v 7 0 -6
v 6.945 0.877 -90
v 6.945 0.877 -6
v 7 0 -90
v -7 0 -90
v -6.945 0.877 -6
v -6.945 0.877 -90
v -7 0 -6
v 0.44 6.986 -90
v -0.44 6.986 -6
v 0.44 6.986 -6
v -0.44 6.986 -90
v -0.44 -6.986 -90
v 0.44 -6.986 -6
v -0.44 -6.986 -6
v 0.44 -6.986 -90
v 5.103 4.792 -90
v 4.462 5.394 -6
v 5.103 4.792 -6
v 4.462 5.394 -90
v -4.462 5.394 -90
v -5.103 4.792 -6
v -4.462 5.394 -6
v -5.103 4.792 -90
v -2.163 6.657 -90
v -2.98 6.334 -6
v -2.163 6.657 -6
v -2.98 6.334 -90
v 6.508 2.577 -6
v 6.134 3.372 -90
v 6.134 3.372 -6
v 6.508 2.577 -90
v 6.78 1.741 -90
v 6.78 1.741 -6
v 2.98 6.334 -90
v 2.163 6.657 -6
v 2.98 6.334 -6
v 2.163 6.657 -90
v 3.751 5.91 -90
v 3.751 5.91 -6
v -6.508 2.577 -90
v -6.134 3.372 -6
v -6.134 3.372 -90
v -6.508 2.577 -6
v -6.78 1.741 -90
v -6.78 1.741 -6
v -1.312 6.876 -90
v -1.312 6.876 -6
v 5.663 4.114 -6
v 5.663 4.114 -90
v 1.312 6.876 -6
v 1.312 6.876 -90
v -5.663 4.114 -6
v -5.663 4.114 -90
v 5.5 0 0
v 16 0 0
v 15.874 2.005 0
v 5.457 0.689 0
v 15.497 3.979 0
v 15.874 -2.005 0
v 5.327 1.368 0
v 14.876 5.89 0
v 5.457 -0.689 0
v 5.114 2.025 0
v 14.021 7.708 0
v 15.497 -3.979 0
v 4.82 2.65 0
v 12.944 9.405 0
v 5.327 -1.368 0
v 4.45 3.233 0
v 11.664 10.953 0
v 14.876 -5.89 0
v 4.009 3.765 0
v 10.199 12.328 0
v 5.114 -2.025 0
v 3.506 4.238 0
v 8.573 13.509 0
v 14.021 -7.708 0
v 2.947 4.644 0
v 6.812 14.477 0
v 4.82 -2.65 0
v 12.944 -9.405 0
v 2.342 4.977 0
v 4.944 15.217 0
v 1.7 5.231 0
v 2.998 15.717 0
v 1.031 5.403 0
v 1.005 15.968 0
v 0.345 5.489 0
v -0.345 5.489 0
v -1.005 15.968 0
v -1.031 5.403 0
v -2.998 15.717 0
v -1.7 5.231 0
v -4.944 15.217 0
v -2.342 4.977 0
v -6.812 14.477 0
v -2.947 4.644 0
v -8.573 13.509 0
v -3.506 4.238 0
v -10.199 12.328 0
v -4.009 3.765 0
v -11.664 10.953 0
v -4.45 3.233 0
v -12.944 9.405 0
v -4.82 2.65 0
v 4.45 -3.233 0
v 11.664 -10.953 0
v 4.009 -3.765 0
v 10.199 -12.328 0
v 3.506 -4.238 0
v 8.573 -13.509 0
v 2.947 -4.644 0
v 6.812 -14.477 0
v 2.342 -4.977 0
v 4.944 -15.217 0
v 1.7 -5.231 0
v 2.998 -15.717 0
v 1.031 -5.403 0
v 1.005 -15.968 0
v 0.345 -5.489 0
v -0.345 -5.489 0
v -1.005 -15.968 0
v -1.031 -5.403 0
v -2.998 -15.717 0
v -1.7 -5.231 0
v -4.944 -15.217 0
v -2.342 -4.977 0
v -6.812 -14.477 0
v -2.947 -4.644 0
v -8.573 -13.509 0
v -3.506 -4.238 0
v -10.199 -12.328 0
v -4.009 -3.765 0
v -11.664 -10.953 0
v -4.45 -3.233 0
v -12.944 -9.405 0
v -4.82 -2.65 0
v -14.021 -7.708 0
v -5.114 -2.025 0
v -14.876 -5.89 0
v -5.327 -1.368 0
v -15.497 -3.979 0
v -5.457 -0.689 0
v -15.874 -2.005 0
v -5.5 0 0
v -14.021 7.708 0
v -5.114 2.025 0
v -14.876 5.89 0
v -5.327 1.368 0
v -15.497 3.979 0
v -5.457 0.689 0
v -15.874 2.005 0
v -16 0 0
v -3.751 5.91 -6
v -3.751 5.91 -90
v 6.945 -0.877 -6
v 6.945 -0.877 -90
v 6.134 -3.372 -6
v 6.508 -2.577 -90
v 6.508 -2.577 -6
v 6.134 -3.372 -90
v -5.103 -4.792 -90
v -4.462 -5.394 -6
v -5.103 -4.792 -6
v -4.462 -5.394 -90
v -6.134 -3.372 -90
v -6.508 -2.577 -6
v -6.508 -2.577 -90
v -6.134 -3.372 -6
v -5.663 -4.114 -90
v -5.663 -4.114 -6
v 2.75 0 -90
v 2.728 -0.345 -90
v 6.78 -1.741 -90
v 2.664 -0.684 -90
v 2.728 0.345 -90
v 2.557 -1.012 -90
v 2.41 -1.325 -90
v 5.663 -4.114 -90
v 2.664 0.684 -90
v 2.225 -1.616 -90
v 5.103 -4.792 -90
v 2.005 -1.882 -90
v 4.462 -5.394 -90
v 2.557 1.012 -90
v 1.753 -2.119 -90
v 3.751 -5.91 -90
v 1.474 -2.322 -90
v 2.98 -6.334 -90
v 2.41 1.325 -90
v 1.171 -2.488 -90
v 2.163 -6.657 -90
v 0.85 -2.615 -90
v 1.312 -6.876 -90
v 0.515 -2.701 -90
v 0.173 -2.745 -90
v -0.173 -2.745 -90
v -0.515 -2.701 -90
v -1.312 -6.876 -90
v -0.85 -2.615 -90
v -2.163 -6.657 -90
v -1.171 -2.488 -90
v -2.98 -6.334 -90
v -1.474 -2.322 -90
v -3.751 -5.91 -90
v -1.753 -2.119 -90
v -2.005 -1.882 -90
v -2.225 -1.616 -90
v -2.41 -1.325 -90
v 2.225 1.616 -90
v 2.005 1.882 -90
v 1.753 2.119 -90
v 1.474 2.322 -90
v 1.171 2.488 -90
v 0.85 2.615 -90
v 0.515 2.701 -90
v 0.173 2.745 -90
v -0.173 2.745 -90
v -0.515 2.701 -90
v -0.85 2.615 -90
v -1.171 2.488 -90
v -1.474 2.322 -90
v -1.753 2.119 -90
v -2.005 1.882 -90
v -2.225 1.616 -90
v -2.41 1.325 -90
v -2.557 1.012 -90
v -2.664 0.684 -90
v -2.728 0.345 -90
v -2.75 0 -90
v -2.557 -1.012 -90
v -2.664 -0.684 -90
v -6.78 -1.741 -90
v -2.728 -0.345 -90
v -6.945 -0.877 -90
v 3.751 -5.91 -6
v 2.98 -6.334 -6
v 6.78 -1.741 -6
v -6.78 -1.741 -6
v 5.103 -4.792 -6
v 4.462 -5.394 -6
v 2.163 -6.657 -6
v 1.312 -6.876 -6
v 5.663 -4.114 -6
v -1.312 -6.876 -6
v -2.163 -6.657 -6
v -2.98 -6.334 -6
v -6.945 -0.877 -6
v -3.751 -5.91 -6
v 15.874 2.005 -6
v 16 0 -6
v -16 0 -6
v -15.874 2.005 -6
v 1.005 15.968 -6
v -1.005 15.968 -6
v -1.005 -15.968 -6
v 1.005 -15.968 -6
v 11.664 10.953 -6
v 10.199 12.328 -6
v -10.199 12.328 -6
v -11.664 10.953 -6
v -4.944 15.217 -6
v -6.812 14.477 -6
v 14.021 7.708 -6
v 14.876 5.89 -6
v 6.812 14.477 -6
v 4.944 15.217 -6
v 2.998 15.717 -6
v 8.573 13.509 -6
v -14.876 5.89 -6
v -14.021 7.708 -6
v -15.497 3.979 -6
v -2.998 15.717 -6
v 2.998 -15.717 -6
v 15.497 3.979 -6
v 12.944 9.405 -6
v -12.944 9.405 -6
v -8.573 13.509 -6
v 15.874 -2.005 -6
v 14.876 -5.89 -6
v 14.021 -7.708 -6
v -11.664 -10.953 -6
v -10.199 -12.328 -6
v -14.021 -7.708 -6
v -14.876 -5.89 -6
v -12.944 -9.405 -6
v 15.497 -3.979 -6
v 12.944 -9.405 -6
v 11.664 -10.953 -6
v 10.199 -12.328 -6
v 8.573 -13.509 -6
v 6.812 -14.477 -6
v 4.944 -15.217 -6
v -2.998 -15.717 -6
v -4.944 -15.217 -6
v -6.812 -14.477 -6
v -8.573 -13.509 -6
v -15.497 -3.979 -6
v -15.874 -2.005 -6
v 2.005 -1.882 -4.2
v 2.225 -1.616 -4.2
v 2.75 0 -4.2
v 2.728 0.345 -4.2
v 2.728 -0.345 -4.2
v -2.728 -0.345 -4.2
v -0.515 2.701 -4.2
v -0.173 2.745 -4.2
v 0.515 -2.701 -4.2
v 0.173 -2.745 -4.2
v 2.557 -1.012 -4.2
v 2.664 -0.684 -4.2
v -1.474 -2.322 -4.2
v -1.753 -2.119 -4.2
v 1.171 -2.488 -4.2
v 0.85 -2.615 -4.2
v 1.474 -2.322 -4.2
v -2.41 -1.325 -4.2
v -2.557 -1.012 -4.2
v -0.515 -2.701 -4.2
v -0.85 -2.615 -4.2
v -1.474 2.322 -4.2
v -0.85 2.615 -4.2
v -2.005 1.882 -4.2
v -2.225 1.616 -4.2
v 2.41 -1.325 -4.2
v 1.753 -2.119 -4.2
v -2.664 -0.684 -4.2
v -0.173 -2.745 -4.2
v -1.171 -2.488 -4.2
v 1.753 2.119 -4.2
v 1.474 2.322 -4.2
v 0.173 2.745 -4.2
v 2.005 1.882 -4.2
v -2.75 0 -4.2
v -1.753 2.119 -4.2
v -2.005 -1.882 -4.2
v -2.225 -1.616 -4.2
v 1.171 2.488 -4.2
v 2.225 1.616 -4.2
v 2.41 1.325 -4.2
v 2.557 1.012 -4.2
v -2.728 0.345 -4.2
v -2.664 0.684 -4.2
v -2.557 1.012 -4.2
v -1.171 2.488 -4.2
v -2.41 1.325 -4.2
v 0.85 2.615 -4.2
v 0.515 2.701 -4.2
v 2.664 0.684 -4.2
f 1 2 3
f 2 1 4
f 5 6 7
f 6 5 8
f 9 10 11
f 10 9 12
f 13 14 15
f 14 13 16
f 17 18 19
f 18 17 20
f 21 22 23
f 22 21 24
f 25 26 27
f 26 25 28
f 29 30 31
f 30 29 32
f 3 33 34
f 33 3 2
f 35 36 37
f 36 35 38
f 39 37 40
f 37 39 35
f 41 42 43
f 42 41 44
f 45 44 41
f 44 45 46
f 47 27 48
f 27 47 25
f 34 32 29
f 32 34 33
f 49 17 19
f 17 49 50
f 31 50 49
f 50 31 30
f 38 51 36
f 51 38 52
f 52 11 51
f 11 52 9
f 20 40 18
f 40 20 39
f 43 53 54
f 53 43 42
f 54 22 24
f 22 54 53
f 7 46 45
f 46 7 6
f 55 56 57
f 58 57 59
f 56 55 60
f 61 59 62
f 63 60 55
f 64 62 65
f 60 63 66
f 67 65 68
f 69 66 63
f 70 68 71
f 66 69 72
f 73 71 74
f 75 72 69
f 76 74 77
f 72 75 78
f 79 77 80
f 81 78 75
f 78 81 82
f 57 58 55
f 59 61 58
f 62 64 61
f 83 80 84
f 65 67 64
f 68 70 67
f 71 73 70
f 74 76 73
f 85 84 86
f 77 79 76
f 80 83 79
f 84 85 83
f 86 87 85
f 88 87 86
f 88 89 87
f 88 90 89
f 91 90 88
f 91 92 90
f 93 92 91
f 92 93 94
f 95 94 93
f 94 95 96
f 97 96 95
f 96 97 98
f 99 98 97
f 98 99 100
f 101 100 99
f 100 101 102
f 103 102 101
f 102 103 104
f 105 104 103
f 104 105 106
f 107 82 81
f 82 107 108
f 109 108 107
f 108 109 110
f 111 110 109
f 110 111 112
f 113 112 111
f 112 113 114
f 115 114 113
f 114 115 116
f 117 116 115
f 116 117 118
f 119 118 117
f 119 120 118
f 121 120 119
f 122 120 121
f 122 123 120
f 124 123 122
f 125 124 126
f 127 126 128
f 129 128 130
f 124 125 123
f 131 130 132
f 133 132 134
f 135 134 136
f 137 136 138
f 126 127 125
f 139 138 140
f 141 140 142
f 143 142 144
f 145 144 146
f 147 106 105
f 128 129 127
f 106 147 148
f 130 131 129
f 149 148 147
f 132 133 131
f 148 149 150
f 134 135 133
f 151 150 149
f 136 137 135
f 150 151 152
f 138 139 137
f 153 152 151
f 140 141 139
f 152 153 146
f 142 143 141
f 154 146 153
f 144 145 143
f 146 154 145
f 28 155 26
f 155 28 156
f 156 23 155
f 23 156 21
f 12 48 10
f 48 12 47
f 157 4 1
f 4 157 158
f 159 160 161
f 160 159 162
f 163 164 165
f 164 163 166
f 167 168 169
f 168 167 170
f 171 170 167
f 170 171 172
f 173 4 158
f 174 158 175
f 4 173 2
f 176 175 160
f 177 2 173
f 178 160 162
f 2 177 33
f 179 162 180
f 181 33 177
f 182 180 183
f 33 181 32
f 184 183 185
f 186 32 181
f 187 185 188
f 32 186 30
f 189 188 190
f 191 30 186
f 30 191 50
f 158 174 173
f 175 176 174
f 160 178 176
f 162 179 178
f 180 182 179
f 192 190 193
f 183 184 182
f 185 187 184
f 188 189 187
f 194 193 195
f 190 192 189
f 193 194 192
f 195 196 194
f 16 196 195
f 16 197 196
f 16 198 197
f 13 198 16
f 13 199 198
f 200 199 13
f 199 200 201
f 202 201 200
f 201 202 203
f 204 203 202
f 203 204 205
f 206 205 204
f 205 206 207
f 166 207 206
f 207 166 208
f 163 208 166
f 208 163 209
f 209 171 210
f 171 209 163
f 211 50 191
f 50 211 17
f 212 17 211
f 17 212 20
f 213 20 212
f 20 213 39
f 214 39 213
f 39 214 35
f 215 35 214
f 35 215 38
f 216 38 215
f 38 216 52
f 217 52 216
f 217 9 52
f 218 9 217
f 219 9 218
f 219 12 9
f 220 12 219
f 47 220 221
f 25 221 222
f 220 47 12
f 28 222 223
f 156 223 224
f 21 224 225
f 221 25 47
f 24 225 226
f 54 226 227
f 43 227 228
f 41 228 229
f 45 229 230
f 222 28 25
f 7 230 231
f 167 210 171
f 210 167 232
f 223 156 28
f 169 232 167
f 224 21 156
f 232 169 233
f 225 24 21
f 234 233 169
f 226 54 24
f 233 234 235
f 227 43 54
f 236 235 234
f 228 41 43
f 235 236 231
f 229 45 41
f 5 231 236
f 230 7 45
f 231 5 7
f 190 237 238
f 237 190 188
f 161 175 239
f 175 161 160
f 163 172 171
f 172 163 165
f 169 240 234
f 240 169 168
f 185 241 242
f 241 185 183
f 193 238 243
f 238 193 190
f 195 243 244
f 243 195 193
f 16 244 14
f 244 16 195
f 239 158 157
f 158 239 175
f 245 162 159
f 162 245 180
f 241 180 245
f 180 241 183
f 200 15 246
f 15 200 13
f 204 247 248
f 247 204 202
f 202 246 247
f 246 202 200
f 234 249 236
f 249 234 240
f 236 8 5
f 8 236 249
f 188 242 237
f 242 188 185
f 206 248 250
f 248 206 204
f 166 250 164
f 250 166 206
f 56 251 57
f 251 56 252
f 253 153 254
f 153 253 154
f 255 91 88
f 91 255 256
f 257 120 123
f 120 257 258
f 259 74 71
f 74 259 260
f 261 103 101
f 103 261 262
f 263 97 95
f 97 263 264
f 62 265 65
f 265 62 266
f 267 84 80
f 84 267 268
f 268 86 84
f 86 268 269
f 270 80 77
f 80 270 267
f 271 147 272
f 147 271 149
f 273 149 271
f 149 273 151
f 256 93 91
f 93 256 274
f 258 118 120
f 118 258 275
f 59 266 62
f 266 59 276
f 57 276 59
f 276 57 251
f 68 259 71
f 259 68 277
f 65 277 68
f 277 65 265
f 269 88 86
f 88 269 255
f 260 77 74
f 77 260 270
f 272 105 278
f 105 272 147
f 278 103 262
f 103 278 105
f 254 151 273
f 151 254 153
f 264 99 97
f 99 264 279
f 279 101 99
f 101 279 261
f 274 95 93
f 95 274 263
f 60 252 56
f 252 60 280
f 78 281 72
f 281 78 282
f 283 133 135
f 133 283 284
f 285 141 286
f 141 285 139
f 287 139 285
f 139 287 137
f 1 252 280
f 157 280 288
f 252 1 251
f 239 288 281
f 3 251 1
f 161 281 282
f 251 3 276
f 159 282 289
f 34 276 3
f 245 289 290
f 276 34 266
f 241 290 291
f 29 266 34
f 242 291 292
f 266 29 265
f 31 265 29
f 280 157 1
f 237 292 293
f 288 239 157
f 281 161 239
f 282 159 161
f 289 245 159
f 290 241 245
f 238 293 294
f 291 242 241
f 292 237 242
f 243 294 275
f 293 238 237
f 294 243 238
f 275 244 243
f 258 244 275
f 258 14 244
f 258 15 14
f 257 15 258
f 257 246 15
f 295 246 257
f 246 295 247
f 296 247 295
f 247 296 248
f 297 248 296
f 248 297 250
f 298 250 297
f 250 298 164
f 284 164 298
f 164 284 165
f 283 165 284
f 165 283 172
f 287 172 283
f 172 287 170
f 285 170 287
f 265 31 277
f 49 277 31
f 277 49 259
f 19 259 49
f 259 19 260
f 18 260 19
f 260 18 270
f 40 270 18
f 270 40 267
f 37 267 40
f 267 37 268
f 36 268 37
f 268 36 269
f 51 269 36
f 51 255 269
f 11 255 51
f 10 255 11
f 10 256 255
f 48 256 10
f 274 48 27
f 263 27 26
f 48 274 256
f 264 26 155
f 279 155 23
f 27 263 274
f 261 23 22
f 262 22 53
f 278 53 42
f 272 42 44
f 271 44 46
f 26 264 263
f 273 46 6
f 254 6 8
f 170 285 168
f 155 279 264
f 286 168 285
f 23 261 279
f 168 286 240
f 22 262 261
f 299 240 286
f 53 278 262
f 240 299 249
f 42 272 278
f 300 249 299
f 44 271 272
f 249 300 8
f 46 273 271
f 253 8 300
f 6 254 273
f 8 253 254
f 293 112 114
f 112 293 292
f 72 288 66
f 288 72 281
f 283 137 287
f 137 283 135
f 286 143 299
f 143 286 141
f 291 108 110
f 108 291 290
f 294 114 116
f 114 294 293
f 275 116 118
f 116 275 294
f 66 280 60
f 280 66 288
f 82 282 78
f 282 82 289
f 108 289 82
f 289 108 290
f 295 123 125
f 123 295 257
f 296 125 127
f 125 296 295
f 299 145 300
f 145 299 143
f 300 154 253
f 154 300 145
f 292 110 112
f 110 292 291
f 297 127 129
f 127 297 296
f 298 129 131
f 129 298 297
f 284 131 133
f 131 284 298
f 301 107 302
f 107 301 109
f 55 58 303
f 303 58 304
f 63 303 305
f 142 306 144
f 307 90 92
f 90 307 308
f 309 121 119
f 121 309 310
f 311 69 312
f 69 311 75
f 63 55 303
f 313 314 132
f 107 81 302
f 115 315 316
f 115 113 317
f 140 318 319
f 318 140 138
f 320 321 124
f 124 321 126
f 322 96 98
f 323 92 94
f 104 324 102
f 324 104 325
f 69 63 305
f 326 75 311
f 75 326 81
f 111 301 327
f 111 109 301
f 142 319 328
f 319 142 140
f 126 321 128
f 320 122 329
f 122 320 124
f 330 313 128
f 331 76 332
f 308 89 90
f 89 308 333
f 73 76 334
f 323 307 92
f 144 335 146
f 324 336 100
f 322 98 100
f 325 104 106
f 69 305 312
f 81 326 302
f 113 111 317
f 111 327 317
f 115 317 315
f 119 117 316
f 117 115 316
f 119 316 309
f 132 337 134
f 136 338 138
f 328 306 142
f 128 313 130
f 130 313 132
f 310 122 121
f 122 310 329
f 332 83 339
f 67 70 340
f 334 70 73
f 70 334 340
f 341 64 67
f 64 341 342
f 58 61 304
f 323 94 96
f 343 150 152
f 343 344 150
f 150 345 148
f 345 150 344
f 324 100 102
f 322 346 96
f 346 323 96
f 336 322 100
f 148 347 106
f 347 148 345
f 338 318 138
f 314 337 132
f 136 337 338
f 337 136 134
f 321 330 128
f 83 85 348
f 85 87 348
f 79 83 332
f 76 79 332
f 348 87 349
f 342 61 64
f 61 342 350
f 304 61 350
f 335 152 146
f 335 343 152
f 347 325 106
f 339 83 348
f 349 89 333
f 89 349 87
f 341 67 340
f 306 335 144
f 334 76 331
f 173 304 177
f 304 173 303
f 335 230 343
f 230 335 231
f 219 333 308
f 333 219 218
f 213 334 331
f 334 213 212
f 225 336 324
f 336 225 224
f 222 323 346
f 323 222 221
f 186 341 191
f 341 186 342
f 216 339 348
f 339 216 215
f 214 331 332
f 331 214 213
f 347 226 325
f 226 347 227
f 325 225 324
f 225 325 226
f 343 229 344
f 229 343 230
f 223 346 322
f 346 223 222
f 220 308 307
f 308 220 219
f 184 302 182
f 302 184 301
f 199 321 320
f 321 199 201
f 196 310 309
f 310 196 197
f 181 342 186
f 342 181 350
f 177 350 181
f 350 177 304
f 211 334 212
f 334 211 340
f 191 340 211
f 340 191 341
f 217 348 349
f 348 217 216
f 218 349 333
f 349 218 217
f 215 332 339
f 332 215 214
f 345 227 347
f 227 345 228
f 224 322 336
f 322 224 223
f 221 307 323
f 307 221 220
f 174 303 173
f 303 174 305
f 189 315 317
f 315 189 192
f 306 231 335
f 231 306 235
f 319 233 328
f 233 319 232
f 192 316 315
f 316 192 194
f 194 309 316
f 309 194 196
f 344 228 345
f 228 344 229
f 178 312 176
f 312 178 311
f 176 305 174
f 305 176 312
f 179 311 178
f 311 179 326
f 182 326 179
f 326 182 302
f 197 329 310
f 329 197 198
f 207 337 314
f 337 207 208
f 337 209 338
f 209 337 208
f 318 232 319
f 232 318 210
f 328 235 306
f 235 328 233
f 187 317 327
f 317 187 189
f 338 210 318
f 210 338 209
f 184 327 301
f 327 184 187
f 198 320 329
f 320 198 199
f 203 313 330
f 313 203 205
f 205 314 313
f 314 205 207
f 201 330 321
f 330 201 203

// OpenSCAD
$fn = 50;


difference() {
	union() {
		translate(v = [0, 0, -90.0000000000]) {
			cylinder(h = 90, r = 7.0000000000);
		}
		translate(v = [0, 0, -6.0000000000]) {
			cylinder(h = 6, r = 16.0000000000);
		}
	}
	union() {
		translate(v = [0, 0, 0]) {
			rotate(a = [0, 0, 0]) {
				difference() {
					union() {
						#translate(v = [0, 0, -90.0000000000]) {
							cylinder(h = 90, r = 2.2500000000);
						}
						#translate(v = [0, 0, -4.2000000000]) {
							cylinder(h = 4.2000000000, r1 = 2.7500000000, r2 = 5.5000000000);
						}
						#translate(v = [0, 0, -90.0000000000]) {
							cylinder(h = 90, r = 2.7500000000);
						}
						#translate(v = [0, 0, -90.0000000000]) {
							cylinder(h = 90, r = 2.2500000000);
						}
					}
					union();
				}
			}
		}
	}
}
